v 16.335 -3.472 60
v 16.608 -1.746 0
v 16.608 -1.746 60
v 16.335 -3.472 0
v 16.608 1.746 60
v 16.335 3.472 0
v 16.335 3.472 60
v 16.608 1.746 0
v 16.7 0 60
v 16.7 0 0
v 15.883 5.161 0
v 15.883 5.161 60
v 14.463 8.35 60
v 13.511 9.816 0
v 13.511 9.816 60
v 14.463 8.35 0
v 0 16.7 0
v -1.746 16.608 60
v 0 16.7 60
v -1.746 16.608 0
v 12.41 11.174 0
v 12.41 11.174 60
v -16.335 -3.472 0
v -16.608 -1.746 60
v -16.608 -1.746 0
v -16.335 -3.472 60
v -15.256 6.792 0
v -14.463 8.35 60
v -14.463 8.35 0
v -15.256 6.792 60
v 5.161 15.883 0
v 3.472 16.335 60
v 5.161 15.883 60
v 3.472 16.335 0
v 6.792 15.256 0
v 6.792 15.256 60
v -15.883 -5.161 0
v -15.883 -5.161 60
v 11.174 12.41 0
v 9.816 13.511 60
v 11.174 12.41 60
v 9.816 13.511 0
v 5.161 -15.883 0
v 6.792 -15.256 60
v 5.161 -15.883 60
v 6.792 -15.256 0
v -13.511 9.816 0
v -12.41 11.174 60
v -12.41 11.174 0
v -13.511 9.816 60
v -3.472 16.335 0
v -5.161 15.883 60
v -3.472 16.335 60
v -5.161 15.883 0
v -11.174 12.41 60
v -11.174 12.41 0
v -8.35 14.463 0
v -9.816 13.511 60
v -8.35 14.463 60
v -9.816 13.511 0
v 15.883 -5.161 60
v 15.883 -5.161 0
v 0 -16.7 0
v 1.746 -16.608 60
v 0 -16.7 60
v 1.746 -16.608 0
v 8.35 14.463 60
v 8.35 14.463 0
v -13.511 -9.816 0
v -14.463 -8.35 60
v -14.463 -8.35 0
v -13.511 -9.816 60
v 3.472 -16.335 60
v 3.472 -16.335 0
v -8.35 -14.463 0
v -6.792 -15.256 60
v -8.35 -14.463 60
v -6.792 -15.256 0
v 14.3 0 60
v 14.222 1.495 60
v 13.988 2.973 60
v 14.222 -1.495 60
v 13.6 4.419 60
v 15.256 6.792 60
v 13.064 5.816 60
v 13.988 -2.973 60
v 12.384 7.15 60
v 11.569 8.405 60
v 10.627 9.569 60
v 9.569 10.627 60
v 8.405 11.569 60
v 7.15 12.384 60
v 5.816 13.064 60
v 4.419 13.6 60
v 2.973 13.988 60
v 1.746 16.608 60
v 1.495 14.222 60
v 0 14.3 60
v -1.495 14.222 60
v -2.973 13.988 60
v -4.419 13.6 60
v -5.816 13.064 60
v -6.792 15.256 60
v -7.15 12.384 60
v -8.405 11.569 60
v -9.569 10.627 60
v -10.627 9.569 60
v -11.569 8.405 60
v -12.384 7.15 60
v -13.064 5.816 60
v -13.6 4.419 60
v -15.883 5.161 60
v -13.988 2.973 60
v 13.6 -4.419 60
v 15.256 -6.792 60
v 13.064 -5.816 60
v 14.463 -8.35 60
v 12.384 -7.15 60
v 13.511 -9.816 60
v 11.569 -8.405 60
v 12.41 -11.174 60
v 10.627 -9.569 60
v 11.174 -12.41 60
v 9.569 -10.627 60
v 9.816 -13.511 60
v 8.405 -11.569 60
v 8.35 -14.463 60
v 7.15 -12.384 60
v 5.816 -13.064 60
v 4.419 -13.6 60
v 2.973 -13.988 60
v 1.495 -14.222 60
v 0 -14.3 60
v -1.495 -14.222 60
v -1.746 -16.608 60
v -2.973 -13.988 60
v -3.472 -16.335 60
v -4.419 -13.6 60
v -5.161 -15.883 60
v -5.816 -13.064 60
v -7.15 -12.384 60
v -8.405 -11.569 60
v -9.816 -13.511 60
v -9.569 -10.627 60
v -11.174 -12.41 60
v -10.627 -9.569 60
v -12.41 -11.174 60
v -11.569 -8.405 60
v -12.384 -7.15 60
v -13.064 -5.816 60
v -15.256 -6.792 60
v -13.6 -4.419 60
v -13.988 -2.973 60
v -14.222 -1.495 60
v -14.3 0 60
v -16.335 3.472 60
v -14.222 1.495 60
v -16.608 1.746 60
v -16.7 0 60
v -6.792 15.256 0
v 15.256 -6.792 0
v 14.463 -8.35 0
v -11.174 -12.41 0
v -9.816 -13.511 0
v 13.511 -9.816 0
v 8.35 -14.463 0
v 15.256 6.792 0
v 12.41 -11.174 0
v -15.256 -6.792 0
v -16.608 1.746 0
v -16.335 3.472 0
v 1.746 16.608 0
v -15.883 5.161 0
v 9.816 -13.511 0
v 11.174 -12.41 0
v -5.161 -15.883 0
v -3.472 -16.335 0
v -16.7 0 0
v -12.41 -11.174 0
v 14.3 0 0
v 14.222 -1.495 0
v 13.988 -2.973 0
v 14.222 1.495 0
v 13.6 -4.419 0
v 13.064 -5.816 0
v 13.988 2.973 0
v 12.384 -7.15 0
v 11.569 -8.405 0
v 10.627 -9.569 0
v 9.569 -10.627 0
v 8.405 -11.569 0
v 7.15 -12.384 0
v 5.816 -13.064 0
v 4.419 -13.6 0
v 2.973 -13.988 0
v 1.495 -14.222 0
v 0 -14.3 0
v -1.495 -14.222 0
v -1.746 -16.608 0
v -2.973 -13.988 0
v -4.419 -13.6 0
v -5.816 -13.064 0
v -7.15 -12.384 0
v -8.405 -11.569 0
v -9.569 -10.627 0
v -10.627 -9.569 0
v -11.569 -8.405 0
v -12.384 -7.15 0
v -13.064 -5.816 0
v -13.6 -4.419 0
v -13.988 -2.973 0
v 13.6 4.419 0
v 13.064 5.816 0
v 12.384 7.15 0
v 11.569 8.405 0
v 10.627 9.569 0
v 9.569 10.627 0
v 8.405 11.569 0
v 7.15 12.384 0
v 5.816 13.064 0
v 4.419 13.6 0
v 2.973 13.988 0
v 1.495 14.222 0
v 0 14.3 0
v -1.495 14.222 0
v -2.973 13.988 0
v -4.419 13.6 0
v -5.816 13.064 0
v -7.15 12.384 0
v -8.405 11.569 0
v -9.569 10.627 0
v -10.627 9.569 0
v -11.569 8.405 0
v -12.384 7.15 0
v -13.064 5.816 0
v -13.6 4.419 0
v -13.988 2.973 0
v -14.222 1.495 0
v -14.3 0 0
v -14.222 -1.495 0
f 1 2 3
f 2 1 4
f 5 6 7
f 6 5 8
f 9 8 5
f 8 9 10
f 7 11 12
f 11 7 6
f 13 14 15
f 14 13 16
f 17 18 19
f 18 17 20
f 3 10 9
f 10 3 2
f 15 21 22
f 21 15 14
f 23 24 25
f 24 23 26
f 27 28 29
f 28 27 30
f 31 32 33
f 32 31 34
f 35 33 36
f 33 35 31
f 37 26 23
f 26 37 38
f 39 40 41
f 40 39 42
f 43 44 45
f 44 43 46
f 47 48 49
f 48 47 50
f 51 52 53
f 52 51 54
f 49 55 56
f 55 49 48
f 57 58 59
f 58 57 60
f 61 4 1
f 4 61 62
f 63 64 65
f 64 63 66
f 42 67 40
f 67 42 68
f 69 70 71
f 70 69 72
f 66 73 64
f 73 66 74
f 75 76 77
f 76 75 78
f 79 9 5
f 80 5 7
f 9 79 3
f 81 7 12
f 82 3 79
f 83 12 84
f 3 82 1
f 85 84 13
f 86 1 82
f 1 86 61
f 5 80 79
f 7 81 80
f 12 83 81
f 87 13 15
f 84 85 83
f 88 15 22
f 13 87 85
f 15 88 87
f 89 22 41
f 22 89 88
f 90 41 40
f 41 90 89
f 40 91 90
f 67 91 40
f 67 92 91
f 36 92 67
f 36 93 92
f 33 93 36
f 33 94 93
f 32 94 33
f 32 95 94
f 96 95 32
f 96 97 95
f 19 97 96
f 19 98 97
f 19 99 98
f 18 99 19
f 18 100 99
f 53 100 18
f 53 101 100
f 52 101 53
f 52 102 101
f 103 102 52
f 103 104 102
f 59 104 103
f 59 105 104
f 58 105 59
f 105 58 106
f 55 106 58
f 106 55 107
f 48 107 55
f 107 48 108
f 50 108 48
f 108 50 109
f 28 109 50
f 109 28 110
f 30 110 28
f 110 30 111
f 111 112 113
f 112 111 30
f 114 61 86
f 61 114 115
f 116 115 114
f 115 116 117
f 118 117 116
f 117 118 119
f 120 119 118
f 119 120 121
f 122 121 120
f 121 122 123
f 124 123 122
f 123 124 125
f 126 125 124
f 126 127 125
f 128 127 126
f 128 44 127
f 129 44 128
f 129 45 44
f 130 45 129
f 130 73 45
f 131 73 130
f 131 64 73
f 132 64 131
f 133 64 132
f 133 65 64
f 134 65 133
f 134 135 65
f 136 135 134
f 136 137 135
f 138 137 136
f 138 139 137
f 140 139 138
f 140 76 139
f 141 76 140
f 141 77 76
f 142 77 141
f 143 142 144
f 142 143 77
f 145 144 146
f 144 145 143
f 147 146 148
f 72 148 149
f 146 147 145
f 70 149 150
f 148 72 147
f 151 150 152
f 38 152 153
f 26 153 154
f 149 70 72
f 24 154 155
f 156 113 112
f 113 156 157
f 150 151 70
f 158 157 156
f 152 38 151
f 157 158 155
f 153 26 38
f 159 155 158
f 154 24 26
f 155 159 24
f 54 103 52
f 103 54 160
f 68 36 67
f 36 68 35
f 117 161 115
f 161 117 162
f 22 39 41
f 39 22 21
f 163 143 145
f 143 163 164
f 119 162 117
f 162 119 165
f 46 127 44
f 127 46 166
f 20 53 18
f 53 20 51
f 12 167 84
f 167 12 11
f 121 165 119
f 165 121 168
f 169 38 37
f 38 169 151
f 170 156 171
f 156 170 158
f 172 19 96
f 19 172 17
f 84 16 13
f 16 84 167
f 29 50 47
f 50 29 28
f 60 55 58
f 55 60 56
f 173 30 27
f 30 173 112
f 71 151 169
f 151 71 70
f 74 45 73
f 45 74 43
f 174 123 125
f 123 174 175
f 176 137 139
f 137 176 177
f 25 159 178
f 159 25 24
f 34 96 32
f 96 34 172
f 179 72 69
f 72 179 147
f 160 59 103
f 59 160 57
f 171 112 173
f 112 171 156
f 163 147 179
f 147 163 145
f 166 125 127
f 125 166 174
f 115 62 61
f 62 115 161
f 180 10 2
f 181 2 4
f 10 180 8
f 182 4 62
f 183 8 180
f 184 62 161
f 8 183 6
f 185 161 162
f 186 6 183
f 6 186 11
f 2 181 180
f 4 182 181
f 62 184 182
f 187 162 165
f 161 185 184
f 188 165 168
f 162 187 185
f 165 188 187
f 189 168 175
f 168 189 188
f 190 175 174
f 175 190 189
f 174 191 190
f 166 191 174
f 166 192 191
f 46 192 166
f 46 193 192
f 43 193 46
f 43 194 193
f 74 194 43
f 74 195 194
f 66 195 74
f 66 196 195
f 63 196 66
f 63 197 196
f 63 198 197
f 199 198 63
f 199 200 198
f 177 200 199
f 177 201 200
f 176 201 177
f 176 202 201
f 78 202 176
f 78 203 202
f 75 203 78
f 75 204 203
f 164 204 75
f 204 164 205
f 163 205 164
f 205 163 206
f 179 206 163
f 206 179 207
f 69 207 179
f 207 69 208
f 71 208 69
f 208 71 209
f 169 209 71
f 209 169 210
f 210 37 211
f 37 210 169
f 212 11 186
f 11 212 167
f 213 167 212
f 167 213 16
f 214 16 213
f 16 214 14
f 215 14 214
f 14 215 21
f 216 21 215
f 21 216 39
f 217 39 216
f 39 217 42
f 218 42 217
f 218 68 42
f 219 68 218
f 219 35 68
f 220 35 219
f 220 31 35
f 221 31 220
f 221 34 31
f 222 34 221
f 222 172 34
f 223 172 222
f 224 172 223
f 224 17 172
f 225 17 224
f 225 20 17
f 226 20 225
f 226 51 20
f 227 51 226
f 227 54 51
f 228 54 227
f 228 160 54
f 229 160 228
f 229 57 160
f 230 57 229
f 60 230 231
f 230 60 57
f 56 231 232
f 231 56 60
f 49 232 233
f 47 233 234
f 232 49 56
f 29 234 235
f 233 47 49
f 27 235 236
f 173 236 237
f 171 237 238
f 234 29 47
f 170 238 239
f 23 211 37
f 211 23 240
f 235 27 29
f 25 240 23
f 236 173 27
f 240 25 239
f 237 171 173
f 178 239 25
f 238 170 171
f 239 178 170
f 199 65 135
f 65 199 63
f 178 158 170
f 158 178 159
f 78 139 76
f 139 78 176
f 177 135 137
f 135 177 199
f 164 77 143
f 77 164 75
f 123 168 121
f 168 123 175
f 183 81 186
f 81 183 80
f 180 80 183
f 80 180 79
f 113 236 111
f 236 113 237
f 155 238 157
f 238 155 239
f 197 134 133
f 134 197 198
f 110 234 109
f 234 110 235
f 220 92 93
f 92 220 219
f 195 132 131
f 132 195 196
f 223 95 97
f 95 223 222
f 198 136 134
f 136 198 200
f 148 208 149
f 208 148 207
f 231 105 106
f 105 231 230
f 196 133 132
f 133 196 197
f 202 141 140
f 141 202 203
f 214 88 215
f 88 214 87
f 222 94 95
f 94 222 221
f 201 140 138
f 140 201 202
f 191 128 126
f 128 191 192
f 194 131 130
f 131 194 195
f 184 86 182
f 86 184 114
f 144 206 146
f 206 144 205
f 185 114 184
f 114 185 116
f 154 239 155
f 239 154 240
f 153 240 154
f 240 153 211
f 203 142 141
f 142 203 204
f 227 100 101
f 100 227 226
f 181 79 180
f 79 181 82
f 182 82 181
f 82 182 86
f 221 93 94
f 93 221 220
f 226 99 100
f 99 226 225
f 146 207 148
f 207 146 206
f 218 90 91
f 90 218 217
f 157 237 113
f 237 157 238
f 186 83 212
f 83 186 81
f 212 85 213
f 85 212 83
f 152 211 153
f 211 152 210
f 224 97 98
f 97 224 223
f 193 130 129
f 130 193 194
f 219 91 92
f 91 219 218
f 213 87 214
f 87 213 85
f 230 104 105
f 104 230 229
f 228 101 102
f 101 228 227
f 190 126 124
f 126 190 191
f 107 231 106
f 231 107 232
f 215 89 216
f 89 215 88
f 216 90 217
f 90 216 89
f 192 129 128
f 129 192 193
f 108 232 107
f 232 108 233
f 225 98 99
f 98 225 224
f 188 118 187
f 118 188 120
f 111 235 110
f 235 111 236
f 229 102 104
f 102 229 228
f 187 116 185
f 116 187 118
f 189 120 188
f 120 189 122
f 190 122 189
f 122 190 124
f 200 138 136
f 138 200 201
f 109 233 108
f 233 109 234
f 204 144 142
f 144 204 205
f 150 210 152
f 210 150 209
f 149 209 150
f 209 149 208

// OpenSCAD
$fn=60;

difference() {
   cylinder(d=33.4,h=60);
   translate([0,0,-1]) cylinder(d=33.4-4.8,h=70);
}
